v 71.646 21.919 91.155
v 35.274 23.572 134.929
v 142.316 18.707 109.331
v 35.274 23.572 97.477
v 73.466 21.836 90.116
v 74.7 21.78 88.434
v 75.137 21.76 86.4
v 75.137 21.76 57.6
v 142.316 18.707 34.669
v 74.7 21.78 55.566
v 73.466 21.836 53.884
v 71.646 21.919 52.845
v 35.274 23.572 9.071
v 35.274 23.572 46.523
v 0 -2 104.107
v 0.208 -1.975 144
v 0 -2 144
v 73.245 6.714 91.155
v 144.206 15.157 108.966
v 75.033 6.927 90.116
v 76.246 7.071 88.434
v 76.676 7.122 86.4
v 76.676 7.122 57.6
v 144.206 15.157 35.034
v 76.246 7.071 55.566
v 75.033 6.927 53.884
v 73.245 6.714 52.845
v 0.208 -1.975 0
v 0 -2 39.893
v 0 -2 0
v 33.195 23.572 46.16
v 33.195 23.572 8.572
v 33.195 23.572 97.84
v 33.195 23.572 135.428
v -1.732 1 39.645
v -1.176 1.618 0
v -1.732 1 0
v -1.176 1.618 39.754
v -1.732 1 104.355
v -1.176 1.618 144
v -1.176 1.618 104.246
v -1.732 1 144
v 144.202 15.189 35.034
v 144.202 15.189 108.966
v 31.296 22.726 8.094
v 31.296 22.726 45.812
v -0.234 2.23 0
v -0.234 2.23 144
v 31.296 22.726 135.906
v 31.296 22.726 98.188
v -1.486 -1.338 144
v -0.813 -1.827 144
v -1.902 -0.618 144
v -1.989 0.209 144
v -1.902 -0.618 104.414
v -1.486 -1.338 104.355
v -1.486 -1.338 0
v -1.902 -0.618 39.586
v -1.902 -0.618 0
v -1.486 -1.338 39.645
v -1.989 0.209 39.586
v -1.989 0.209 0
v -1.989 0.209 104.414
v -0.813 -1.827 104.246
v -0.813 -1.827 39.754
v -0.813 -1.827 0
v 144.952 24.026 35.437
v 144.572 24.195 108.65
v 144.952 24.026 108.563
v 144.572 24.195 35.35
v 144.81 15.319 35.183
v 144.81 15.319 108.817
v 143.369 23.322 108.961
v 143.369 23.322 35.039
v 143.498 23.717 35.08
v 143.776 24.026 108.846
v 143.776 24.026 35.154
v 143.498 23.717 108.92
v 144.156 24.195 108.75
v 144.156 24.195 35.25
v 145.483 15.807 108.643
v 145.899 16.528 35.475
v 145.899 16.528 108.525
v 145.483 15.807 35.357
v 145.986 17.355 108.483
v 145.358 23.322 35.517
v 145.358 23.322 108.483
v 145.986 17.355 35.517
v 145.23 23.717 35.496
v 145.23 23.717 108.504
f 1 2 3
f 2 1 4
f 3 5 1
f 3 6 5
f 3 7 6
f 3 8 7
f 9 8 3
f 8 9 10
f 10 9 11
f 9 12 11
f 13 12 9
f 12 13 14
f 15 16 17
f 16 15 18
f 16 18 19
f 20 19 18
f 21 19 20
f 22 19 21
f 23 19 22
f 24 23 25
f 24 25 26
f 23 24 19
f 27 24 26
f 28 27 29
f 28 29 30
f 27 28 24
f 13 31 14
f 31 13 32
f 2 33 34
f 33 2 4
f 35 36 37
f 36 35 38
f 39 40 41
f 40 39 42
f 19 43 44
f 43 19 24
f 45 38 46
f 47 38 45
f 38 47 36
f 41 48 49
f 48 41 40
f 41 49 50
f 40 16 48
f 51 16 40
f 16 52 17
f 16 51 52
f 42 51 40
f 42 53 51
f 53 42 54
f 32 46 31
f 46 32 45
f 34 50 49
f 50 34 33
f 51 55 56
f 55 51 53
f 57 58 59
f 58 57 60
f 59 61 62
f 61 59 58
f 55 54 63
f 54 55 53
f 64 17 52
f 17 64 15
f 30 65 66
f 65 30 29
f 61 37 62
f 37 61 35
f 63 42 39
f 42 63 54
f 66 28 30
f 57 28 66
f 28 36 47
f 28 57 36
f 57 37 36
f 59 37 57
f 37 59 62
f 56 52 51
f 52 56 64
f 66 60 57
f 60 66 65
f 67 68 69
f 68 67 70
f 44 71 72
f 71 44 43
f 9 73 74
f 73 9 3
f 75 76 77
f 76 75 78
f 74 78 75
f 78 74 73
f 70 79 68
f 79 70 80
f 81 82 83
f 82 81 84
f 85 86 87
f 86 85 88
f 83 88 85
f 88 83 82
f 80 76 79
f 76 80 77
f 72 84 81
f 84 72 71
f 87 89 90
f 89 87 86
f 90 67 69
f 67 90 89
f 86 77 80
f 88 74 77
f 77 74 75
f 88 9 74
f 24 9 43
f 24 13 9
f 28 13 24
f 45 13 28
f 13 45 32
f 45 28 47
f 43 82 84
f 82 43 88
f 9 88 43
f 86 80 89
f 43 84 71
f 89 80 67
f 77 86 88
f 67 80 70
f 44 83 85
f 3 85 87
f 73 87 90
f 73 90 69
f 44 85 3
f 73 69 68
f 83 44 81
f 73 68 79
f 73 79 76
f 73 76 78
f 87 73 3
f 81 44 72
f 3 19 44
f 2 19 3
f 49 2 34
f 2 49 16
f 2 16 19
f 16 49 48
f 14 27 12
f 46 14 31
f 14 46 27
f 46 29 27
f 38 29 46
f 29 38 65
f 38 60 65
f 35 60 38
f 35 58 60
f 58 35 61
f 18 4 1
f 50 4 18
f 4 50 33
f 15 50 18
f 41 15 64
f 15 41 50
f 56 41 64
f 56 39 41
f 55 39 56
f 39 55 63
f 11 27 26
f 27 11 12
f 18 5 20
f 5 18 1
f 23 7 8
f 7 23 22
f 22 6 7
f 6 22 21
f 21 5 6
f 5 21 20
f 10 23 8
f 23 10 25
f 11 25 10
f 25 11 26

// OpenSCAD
// file: parameters.scad
// Speaker enclosure parameters

// Spacing between hexagon shapes in degrees.
spacing = 0.3;

// Absolute amount of spacing between hexagons in mm.
spacingAbs = 1; // mm

// Length of short side of streched hexagon shapes in degrees.
shortSide = 1;

// Distance of streched hexagon side points in degrees
armsDistance = 0.575;

// Hexagon shape height in mm
hexLength = 26.666667;

// Height and length of an enclosure wall.
wallLength = 160;

// In between the hexagon shapes transparent and non-transparent layers alternate.
// Thickness of non-transparent material in between hexagon shapes in mm
solidThickness = 0.6;

// Thickness of transparent material in between hexagon shapes in mm
betweenThickness = 1.2;

// Thickness of hexagon shapes in mm
hexThickness = 7.2;


// Front wall speaker mounting screw holes
// screw hole diameter in mm
screwDiameter = 3.85;

// distance of screw hole from wall center point in mm
screwCenterDistance = 41.5;

// Front wall specific parameters
// Side length of rectangle used to create an indentation [mm].
frontRectLength = 95;

// Diameter of circle for front indentation [mm]
frontCircleDiameter = 103;

// Diameter of the speaker cone hole [mm].
speakerConeDiameter = 93;

// Side walls
// amount of overlapping on edges [mm]
sideEdgeFixWidth = 15;


// Back wall
// Diameter of the banana adapter [mm]
bananaAdapterDiameter = 5;

// Measures of the LED light adapter [mm]
ledAdapterHeight = 7.5;
ledAdapterWidth = 11;

// Distance from adapters to bottom edge [mm]
adapterEdgeDistance = 25;

// Distance between adapters [mm]
adapterDistance = 15;

// Speaker stand
// front width of stand
standWidth = wallLength * 0.9;

// length of speaker stand
standLength = wallLength * 0.9;

// size of the back piece that prevents the speaker from sliding of the stand [mm]
standRimWidth = 5;
standRimHeight = 8;

// max height of the stand [mm]
standHeight = 15;

// Front cover
// front cover thickness [mm]
coverThickness = 5;


/// LED Guide
// Distance from enclosure wall = spacing of strip to wall [mm]
guide_distance = 22.5;

// Thickness of the LED guide [mm]
guide_thickness = 1.5;

// Width of the LED guide [mm]
guide_width = 8;

// Length of one guide segment [mm]
guide_segment_length = 13;

// Length of the guide feet that get attached to the enclosure wall [mm]
guide_foot_length = 5;

// Number of total segments per LED guide
total_segments = 8;

// Width of the LED strip [mm]
led_strip_width = 10;

/// Back-side connectors
connector_length = 8;
connector_outer = 9;
connector_inner = 6;


/// Case
// wall thickness of the case [mm]
case_thickness = 1.2;

// inner case shell measurements [mm]
case_height = 22;
case_width = 85;
case_length = 90;

// diameter of the power connector hole [mm]
power_connector_diameter = 11;
power_connector_dist = 30;

// USB hole measurements [mm]
usb_width = 33;
usb_height = 18;
usb_dist = 3;

// LED connector measurements [mm]
led_connector_height = 8;
led_connector_width = 11;
led_connector_dist = 50;

// rounded case corners
case_bevel_diameter = 5;

case_connector_length = 5;
// main file
// Speaker stand

include <parameters.scad>;

$fn = 15;

module base() {
    hull() {
        cylinder(r=2, h=standWidth);
        
        translate([standLength * 0.25, standHeight, 0]) {
            cylinder(r=5, h=standWidth);
        }
        
        translate([standLength, standHeight * 1/6, 0]) {
            cube([1, 1, standWidth]);
        }
        
        translate([standLength, 0, 0]) {
            cube([1, 1, standWidth]);
        }
    }
    
    translate([standLength + 1, 0, 0]) {
        hull() {
            translate([0, 2, 0]) {
                cylinder(r=2, h=standWidth);
            }
            
            translate([1, standRimHeight, 0]) {
                cylinder(r=1, h=standWidth);
            }
        }
    }
}

module sideBevelTool() {
    translate([0, standHeight * 1.5, 0]) {
        rotate([90, 0, 0]){
            linear_extrude(height=standHeight*2) {
                p0 = [0, 0];
                p1 = [standLength + standRimWidth, 0];
                p2 = [standLength + standRimWidth, standWidth * 0.25];
                
                polygon([p0, p1, p2]);
            }
        }
    }
}

module speakerStand() {
    rotate([0, 0, 6]) {
        difference() {
            base();
            sideBevelTool();
            
            translate([0, 0, standWidth]) {
                mirror([0, 0, -1]) {
                    sideBevelTool();
                }
            }
            
            // center hole
            translate([0, standHeight * 1.5, 0]) {
                rotate([90, 0, 0]) {
                    hull() {
                        translate([-10, standWidth * 0.3, 0]) {
                            cylinder(r=5, h=standHeight*2);
                        }
                        
                        translate([-10, standWidth * 0.7, 0]) {
                            cylinder(r=5, h=standHeight*2);
                        }
                        
                        translate([standLength * 0.5, standWidth * 0.4, 0]) {
                            cylinder(r=5, h=standHeight*2);
                        }
                        
                        translate([standLength * 0.5, standWidth * 0.6, 0]) {
                            cylinder(r=5, h=standHeight*2);
                        }
                    }  
                }
            }
        }
    }
    
}

speakerStand();
